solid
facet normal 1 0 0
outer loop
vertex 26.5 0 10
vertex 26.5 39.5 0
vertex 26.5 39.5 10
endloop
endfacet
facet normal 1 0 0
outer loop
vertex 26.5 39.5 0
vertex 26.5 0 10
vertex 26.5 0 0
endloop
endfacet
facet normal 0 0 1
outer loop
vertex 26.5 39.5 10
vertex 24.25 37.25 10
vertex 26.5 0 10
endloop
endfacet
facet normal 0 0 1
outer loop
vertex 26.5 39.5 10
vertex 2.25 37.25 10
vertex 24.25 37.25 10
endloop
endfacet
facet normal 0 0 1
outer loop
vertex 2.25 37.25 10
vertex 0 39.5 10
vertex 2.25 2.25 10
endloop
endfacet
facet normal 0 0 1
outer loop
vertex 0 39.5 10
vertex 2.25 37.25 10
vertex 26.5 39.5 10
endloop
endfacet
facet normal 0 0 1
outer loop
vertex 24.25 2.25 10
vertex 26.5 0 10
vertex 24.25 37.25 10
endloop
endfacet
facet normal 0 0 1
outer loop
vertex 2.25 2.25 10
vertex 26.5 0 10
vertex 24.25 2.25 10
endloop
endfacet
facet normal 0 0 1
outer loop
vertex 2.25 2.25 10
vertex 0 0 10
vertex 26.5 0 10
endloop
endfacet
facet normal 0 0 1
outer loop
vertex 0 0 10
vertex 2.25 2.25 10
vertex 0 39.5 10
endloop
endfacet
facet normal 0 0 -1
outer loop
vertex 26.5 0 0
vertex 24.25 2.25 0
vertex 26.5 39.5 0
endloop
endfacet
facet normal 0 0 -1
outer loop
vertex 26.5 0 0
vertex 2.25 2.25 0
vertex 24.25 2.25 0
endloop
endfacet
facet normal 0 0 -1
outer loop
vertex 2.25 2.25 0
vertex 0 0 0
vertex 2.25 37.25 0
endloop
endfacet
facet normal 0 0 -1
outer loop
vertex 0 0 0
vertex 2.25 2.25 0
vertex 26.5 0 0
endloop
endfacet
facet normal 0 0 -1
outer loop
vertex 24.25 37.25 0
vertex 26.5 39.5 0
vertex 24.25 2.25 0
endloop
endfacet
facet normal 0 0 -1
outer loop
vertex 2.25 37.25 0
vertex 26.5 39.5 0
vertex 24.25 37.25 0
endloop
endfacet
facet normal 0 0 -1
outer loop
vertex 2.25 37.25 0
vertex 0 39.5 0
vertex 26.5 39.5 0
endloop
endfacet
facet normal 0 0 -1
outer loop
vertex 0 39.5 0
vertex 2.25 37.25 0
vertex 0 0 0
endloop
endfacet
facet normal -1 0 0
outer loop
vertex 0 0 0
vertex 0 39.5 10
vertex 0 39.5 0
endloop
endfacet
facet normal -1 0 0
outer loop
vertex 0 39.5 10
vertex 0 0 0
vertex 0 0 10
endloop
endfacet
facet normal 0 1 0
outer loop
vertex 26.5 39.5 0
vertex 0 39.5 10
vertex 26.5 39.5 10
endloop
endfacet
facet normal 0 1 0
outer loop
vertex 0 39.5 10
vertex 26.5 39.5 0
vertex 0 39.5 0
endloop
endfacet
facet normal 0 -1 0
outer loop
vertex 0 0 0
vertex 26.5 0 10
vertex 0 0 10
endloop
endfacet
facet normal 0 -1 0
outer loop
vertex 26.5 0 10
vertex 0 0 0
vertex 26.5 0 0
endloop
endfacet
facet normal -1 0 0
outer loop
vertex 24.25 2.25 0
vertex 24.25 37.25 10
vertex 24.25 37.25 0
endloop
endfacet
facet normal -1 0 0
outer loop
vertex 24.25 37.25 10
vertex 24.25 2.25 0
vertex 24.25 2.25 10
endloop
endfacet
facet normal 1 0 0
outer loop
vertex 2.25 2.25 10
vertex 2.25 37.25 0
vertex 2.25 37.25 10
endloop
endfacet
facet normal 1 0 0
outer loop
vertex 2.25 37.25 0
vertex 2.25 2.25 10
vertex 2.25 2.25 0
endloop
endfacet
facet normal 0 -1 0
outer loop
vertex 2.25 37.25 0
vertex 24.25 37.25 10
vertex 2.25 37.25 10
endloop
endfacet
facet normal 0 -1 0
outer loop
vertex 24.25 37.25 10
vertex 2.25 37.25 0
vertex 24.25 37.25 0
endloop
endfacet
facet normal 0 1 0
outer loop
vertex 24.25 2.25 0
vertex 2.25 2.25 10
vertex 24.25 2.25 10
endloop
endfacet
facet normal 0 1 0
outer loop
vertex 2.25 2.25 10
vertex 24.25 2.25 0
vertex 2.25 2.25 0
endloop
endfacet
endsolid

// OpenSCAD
thickness = 5 * 0.45;

difference() {
    cube([22+2*thickness, 35+2*thickness, 10]);
    
    translate([thickness, thickness, 0])
    cube([22, 35, 30]);
}
